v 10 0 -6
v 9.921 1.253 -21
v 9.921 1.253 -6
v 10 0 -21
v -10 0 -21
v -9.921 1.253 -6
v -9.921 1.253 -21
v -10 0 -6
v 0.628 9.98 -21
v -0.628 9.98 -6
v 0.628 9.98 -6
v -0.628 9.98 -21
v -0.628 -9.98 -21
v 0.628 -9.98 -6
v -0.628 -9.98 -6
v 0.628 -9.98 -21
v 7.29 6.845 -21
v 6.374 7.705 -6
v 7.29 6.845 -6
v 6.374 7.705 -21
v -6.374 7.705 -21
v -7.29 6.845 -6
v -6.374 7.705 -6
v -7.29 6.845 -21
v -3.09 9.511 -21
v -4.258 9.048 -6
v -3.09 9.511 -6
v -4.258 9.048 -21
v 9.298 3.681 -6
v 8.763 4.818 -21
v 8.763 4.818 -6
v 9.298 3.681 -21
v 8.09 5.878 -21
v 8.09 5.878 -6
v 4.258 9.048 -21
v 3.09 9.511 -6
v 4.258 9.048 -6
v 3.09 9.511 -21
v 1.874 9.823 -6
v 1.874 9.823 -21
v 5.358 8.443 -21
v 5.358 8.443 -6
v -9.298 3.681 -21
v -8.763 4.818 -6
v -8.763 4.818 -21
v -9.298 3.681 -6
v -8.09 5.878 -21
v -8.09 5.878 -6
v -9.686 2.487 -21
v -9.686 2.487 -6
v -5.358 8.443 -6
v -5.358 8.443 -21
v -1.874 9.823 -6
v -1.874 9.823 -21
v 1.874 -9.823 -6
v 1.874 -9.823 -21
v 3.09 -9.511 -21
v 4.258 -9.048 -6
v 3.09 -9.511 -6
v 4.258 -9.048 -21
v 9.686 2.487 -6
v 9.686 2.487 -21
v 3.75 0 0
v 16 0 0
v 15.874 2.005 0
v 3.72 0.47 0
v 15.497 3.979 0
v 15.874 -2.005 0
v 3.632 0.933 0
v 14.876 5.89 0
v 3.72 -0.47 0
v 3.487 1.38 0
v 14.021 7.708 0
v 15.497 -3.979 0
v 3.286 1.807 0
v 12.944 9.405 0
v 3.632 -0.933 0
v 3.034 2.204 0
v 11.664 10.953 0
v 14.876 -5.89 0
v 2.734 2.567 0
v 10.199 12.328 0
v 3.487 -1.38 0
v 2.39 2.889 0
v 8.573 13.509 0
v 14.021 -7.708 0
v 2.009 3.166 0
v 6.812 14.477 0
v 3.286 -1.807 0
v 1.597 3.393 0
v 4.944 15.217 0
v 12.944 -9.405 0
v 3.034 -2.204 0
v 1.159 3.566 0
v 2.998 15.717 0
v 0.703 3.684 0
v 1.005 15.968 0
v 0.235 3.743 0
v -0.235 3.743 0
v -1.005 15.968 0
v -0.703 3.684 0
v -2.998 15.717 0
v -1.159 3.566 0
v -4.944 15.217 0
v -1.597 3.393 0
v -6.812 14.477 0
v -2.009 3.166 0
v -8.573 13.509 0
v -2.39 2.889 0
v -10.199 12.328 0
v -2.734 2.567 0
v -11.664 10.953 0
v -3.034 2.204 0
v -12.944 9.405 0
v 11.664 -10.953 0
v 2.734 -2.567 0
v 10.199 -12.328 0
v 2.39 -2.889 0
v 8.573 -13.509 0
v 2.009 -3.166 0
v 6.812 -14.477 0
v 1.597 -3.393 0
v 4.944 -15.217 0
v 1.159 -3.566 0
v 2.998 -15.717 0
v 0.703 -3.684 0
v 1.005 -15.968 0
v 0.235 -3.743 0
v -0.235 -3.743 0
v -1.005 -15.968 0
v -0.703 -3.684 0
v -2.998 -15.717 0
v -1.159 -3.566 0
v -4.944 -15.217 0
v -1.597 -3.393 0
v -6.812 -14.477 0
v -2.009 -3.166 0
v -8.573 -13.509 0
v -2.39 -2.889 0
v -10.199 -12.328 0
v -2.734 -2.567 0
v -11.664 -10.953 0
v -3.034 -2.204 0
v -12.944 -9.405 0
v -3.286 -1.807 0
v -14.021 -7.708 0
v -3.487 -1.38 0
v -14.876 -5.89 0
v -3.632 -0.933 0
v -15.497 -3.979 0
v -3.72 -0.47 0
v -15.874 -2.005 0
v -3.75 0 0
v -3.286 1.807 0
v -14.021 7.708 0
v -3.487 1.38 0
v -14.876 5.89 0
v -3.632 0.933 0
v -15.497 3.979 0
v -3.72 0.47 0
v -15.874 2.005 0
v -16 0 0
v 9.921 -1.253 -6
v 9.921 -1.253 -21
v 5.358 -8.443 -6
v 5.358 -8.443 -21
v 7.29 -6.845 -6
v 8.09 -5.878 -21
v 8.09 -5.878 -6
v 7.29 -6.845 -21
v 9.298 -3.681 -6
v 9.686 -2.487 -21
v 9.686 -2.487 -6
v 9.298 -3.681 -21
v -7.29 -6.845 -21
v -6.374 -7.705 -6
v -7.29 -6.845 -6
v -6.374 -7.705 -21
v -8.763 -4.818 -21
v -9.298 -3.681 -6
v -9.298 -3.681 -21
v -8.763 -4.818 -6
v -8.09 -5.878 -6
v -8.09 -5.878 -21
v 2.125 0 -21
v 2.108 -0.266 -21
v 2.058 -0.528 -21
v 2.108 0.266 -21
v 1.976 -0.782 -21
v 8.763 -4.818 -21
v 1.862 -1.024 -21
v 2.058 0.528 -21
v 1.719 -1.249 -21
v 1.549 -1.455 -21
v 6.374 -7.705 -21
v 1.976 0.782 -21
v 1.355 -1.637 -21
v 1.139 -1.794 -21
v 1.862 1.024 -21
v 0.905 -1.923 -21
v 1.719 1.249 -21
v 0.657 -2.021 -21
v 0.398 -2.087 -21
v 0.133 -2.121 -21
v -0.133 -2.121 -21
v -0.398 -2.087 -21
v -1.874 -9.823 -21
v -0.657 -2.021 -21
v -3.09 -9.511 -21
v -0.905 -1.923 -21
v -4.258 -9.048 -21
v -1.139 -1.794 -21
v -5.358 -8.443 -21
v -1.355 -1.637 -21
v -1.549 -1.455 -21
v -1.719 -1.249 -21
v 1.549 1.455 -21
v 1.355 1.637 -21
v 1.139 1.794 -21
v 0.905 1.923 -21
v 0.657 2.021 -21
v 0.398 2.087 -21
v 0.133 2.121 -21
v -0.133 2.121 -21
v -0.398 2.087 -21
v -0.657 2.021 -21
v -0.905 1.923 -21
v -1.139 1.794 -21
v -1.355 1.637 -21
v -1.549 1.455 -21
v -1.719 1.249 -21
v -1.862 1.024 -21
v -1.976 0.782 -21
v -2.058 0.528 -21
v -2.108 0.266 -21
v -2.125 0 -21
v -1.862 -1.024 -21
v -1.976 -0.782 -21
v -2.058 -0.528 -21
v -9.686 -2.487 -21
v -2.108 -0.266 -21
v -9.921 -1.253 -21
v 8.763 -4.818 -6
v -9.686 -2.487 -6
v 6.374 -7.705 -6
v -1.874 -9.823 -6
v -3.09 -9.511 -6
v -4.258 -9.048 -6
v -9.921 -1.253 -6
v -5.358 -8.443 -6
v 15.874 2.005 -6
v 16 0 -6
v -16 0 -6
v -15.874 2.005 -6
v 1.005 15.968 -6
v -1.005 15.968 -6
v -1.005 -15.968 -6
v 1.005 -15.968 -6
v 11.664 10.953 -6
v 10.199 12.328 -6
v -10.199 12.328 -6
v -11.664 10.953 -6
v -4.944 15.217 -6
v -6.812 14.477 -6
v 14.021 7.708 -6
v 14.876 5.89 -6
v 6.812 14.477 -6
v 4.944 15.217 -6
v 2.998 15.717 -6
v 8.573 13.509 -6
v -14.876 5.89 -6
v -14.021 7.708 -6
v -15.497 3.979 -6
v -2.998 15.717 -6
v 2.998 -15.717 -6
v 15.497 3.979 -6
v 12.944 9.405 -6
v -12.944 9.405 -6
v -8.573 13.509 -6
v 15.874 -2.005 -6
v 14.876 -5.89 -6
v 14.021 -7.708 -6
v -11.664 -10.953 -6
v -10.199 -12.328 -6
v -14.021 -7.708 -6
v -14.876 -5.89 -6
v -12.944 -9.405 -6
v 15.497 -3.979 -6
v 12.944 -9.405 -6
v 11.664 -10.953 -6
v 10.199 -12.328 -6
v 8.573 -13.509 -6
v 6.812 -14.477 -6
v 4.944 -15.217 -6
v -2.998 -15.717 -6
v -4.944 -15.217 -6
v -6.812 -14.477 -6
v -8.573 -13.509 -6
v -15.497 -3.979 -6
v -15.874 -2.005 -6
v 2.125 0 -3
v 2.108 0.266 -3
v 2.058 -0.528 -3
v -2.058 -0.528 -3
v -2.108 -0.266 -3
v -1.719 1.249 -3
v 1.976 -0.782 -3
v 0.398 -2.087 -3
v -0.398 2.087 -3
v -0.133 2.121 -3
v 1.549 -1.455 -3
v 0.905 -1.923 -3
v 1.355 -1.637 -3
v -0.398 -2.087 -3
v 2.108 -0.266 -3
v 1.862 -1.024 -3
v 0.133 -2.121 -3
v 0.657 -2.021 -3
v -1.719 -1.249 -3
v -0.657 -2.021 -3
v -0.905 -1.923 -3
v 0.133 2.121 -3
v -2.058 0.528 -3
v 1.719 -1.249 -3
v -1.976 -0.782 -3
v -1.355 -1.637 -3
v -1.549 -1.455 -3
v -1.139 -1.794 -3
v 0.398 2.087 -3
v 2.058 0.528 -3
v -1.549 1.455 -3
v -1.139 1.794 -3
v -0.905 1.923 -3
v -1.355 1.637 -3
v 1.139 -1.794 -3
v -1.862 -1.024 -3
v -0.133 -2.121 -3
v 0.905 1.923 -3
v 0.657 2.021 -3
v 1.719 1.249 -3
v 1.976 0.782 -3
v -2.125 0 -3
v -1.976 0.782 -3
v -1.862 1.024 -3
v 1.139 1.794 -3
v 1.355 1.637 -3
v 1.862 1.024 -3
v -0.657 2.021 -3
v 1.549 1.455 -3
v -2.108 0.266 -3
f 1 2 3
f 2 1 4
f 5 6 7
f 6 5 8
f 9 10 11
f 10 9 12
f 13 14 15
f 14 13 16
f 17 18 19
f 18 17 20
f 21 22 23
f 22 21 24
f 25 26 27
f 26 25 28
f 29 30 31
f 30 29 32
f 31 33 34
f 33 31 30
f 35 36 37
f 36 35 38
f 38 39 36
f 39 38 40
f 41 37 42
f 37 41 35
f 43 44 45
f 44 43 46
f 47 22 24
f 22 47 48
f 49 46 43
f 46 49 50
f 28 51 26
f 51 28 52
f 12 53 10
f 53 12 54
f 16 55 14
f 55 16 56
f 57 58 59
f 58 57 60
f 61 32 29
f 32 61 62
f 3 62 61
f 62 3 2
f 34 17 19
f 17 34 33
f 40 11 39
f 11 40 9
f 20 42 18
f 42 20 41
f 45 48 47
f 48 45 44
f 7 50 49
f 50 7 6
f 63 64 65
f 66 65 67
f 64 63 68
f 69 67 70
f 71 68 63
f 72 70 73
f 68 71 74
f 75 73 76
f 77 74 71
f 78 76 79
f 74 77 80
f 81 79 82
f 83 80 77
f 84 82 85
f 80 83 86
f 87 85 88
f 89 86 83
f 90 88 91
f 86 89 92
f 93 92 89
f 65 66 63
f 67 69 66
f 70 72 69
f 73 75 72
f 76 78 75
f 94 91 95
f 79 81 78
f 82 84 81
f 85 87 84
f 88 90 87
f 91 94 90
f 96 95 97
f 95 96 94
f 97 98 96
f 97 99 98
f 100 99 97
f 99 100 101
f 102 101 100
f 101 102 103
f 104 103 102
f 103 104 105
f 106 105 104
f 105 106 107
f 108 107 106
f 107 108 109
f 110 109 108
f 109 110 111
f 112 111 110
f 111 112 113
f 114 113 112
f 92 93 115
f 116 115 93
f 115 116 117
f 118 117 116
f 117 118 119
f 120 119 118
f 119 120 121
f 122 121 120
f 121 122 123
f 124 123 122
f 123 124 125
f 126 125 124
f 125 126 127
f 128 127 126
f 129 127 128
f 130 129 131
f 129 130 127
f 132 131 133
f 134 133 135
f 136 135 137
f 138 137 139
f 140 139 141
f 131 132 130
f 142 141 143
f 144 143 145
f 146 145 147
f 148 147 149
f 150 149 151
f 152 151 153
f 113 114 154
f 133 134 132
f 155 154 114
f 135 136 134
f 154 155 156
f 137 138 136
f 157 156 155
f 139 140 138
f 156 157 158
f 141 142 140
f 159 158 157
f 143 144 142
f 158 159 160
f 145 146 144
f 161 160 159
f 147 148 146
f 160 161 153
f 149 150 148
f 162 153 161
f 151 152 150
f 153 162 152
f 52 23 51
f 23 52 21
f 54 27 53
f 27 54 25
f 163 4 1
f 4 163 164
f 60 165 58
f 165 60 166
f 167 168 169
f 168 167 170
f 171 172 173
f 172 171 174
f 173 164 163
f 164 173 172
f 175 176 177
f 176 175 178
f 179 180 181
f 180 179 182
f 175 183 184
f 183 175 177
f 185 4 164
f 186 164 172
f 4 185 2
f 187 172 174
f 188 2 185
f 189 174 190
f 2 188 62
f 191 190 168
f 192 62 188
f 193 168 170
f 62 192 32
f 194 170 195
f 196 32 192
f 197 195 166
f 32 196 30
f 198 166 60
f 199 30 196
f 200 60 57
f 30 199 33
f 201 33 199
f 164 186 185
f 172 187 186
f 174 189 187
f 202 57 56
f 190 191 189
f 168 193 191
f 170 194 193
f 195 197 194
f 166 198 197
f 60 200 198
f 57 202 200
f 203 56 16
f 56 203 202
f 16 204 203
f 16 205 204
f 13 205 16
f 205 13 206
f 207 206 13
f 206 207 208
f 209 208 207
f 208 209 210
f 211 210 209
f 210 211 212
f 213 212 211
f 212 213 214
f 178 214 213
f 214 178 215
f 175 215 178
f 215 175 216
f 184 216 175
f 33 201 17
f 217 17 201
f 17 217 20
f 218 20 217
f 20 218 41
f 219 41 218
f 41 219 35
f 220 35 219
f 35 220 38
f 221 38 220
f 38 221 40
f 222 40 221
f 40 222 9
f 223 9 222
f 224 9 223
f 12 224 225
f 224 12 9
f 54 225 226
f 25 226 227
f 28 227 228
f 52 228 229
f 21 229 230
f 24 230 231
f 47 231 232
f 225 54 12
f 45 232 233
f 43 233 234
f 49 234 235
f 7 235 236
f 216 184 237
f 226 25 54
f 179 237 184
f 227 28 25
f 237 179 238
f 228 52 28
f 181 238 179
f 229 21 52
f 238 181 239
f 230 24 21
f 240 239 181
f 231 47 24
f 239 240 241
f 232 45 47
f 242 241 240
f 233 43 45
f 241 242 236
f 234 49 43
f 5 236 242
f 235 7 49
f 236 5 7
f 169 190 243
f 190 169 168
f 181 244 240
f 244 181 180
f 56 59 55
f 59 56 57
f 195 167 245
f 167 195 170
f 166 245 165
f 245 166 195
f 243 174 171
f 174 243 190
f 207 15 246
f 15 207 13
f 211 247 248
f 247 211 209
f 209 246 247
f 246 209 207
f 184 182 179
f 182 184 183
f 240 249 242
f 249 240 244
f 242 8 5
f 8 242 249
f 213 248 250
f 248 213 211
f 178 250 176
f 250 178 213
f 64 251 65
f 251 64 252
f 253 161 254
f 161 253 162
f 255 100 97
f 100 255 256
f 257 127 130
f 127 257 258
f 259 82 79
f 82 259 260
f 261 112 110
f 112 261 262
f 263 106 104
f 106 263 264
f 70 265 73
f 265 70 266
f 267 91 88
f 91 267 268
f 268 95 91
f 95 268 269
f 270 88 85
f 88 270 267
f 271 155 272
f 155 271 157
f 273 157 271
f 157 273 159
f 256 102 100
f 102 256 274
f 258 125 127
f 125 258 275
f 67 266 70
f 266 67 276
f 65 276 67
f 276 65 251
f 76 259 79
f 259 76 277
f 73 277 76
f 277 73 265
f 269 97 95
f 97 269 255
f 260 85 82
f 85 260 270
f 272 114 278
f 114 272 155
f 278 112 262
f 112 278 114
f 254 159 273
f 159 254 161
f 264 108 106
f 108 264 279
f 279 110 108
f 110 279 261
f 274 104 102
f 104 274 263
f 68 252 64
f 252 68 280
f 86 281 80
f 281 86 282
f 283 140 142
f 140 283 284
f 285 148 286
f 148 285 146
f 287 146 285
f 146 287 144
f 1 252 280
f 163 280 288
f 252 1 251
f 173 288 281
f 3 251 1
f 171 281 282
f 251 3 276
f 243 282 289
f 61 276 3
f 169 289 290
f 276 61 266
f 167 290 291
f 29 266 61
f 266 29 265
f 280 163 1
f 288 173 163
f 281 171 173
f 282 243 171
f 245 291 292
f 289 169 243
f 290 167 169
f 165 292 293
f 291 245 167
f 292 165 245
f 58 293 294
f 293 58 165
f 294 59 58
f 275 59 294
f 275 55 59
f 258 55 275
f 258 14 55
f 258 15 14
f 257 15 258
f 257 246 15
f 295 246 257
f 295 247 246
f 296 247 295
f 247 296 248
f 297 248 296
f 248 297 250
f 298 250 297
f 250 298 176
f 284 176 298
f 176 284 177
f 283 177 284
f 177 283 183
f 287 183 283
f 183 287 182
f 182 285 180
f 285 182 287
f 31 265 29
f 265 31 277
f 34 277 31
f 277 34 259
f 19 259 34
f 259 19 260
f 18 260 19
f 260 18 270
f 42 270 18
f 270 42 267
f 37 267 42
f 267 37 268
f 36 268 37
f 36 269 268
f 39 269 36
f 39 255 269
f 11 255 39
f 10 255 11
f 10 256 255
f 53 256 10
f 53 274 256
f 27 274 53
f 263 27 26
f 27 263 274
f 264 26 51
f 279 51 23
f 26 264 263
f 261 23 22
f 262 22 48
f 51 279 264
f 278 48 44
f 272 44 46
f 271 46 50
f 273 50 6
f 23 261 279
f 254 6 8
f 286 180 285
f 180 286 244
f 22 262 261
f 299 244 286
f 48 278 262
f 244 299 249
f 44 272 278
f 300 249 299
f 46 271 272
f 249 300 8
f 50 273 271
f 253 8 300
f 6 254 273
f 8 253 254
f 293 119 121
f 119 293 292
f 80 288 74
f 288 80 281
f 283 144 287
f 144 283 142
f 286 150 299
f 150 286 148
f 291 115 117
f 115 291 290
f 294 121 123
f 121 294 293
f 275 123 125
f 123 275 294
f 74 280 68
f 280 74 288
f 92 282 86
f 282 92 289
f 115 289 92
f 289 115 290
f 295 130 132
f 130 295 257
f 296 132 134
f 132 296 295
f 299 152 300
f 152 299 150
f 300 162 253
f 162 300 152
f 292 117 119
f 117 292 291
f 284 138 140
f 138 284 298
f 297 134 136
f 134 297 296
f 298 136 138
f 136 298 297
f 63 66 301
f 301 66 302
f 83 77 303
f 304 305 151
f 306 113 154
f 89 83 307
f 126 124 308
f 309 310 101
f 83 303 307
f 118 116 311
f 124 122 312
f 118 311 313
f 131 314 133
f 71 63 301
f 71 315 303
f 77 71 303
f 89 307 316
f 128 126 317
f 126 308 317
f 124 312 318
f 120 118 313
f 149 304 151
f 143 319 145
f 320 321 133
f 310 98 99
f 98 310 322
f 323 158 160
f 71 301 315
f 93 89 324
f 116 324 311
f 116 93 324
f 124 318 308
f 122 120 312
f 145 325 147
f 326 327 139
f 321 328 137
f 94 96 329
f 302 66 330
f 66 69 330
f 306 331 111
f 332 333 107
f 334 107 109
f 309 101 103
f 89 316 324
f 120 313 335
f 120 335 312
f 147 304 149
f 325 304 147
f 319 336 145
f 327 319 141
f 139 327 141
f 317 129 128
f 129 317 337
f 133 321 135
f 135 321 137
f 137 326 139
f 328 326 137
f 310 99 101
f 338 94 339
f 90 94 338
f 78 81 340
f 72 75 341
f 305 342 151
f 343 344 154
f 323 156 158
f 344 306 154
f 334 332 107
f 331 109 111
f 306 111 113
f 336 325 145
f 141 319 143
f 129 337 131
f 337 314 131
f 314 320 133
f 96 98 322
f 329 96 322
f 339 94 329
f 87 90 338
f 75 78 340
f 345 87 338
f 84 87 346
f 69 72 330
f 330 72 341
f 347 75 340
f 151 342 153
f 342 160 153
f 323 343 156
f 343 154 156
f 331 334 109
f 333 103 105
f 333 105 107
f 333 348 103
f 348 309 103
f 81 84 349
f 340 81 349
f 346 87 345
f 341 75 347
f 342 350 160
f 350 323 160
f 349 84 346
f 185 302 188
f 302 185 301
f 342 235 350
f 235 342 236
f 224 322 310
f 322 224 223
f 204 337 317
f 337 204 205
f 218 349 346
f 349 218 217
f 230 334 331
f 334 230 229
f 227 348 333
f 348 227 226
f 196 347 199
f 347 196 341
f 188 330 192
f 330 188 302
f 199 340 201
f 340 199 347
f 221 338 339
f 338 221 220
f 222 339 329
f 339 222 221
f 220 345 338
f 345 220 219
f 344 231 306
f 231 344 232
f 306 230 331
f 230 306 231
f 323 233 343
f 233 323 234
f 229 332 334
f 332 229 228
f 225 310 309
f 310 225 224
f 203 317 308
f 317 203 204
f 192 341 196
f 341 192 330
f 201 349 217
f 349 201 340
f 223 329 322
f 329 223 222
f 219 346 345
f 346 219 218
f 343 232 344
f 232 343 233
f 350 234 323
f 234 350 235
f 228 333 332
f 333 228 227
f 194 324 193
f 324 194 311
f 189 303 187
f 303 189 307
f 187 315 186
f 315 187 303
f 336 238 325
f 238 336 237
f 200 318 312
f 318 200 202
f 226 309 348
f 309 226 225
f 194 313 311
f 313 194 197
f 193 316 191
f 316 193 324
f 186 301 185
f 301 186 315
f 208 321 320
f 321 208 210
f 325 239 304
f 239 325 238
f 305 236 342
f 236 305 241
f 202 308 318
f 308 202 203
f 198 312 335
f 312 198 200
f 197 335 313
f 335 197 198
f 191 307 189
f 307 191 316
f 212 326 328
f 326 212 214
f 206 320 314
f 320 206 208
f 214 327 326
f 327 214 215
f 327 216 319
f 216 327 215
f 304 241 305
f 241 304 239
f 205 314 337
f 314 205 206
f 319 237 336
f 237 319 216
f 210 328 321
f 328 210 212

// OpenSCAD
$fn = 50;


difference() {
	union() {
		translate(v = [0, 0, -21.0000000000]) {
			cylinder(h = 21, r = 10.0000000000);
		}
		translate(v = [0, 0, -6.0000000000]) {
			cylinder(h = 6, r = 16.0000000000);
		}
	}
	union() {
		translate(v = [0, 0, 0]) {
			rotate(a = [0, 0, 0]) {
				difference() {
					union() {
						#translate(v = [0, 0, -21.0000000000]) {
							cylinder(h = 21, r = 2.0000000000);
						}
						#translate(v = [0, 0, -3]) {
							cylinder(h = 3, r = 10.0000000000, r1 = 2.1250000000, r2 = 3.7500000000);
						}
						#translate(v = [0, 0, -21.0000000000]) {
							cylinder(h = 21, r = 2.1250000000);
						}
						#translate(v = [0, 0, -21.0000000000]) {
							cylinder(h = 21, r = 2.0000000000);
						}
					}
					union();
				}
			}
		}
	}
}
